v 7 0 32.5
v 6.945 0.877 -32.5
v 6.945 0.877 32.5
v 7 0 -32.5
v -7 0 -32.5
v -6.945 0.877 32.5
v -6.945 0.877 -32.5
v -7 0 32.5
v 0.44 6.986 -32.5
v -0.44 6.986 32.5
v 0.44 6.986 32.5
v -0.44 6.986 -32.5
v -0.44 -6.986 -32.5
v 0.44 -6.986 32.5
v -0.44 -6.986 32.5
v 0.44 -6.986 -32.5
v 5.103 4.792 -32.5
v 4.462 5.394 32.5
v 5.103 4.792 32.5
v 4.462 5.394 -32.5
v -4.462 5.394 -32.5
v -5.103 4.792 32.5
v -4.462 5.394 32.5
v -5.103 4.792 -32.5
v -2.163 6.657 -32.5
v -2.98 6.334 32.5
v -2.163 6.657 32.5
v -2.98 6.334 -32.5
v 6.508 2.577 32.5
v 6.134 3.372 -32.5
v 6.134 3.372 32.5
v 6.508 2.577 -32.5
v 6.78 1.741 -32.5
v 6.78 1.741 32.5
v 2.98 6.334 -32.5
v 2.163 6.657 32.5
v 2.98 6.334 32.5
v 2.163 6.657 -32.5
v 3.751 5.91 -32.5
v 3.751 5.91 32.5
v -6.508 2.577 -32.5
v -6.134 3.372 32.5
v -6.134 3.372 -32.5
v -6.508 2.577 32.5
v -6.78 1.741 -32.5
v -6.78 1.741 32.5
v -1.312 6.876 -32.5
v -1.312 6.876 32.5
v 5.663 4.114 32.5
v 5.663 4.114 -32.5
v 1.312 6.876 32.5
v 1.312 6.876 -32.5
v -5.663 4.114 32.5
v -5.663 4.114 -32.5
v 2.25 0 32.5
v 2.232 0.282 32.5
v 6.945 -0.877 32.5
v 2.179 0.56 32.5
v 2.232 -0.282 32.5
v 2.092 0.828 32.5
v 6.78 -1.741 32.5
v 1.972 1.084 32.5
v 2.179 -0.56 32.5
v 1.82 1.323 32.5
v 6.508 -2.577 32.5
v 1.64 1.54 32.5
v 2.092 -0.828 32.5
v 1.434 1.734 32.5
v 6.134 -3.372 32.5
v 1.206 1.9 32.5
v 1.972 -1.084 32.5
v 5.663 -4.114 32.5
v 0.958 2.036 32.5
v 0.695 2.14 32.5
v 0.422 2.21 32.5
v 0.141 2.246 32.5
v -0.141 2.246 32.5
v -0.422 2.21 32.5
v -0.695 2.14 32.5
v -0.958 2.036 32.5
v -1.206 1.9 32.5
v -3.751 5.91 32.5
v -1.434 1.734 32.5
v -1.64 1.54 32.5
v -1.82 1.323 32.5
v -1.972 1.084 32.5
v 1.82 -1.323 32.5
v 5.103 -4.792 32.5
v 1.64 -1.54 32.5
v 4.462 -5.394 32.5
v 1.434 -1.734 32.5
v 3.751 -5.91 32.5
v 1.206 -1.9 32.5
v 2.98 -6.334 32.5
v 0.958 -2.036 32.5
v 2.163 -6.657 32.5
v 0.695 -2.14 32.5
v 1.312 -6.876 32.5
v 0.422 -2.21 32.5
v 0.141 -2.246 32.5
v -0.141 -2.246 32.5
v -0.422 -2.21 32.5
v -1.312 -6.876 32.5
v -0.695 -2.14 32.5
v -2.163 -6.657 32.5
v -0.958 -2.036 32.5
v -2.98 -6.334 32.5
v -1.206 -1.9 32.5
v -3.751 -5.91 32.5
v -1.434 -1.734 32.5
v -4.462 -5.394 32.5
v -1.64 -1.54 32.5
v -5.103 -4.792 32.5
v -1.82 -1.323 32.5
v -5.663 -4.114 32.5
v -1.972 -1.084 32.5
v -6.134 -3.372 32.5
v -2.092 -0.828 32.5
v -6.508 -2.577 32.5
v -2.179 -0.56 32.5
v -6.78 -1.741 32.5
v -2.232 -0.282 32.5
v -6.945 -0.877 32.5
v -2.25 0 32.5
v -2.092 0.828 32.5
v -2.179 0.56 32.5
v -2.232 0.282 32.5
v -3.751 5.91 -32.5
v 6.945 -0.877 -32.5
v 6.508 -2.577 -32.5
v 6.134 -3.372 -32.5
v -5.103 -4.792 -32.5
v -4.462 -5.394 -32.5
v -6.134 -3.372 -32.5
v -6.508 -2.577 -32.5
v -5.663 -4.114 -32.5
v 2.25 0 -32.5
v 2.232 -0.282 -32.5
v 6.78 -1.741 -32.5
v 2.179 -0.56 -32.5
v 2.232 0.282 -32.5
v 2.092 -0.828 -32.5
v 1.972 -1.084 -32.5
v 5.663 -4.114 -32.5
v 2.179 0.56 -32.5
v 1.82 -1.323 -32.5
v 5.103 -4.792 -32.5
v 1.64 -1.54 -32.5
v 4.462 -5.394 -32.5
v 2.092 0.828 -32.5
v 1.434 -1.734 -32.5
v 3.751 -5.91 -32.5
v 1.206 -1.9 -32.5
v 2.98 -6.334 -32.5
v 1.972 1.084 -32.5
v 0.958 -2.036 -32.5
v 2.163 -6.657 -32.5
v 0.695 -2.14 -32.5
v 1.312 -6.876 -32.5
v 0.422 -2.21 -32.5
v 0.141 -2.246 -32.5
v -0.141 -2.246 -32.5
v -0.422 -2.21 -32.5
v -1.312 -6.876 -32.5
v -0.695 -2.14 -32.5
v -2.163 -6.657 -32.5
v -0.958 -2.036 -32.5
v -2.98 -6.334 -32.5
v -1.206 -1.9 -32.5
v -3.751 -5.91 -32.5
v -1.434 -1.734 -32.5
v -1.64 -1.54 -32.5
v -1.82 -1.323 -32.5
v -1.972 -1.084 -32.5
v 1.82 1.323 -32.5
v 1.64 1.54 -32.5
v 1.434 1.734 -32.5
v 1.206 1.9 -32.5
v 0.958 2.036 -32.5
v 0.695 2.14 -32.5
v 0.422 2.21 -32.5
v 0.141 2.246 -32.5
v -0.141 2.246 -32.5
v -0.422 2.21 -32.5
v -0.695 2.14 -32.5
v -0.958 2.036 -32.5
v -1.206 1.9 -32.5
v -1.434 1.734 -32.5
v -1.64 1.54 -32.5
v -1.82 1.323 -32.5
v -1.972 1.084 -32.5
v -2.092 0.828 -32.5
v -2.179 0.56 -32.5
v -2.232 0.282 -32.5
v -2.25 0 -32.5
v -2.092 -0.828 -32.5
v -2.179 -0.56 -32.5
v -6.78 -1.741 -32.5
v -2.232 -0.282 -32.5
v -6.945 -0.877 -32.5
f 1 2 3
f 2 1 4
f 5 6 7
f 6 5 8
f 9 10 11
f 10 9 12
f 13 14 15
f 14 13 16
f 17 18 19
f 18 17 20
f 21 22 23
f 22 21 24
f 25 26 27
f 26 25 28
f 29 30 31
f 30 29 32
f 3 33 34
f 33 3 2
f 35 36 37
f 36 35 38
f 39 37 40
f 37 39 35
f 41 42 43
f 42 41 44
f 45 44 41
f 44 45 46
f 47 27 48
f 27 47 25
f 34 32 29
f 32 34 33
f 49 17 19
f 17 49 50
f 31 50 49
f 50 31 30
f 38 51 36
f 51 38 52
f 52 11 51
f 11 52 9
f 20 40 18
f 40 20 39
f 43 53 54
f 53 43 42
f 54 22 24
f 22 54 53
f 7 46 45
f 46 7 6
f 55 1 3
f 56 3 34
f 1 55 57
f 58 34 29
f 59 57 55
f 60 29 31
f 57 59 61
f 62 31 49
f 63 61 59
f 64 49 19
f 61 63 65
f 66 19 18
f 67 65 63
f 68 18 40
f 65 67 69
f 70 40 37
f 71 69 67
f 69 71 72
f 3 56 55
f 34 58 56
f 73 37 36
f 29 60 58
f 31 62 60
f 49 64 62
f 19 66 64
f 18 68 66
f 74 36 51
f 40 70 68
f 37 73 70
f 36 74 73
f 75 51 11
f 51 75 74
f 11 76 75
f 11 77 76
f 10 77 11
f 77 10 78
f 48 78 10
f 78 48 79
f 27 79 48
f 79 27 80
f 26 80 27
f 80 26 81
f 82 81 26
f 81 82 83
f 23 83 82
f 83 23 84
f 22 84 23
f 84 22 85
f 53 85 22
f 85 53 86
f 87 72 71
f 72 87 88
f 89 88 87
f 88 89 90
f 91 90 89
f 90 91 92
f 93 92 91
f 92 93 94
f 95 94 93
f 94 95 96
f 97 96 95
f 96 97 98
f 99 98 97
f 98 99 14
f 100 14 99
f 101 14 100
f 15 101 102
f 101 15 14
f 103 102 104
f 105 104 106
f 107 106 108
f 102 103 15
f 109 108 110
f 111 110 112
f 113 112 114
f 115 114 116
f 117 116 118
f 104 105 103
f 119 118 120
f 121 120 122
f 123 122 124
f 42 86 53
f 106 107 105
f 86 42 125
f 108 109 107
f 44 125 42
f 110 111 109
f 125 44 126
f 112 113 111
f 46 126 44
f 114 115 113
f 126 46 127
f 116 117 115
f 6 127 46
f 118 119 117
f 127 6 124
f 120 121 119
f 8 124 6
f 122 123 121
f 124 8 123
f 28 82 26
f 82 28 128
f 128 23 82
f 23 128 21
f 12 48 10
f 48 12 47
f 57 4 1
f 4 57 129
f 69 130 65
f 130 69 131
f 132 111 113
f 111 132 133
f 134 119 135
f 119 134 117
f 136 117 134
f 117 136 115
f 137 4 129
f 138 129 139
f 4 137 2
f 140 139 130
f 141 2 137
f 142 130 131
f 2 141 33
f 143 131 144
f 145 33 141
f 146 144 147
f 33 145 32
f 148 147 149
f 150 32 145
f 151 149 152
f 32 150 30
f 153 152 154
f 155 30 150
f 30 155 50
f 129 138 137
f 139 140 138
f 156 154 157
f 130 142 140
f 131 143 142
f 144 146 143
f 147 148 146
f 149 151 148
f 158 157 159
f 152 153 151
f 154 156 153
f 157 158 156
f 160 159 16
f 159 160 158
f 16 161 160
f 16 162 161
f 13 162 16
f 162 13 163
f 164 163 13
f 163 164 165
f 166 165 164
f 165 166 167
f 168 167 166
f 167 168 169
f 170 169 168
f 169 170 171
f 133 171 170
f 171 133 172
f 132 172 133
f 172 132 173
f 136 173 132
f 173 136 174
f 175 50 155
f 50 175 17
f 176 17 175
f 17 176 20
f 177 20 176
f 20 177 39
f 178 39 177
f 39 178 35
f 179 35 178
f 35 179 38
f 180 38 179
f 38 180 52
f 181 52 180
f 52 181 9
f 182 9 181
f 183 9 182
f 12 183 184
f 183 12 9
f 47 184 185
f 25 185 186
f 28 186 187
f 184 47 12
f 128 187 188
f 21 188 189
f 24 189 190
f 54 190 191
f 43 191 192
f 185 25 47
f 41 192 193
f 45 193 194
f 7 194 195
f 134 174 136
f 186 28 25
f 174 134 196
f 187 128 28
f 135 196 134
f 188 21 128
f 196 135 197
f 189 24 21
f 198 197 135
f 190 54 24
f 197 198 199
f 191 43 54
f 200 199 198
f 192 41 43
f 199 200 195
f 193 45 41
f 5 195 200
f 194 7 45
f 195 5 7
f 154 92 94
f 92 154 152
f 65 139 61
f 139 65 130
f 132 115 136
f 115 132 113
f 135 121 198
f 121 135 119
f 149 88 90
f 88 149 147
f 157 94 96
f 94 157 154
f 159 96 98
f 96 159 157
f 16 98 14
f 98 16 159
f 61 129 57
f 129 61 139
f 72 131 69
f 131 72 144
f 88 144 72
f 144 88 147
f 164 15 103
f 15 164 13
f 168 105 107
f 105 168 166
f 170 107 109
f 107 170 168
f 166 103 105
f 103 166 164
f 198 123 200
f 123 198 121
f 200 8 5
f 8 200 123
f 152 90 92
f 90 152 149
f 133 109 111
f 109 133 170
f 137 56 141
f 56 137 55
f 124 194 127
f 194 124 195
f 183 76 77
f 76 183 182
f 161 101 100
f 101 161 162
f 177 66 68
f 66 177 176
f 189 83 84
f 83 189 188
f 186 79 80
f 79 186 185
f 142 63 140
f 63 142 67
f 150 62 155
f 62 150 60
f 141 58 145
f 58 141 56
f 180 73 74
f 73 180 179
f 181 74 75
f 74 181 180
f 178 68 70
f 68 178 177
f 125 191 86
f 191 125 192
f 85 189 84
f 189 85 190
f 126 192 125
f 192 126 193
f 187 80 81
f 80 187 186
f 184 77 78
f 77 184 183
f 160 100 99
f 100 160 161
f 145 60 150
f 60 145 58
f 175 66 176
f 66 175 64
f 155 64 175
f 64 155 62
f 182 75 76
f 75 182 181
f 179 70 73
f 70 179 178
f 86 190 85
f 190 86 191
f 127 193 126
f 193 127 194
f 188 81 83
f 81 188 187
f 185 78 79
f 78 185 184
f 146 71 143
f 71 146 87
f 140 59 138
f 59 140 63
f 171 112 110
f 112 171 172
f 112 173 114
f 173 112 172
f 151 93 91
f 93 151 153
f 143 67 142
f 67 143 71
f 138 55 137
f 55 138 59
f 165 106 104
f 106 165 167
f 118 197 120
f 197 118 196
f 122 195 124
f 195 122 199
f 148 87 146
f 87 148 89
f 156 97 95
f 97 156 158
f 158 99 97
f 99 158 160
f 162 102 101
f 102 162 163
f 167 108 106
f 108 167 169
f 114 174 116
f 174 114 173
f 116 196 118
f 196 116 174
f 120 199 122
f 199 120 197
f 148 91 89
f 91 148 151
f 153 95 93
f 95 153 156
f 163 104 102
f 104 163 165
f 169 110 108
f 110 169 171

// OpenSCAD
$fn = 50;


difference() {
	union() {
		translate(v = [0, 0, -32.5000000000]) {
			cylinder(h = 65, r = 7.0000000000);
		}
	}
	union() {
		translate(v = [0, 0, -100.0000000000]) {
			cylinder(h = 200, r = 2.2500000000);
		}
	}
}
